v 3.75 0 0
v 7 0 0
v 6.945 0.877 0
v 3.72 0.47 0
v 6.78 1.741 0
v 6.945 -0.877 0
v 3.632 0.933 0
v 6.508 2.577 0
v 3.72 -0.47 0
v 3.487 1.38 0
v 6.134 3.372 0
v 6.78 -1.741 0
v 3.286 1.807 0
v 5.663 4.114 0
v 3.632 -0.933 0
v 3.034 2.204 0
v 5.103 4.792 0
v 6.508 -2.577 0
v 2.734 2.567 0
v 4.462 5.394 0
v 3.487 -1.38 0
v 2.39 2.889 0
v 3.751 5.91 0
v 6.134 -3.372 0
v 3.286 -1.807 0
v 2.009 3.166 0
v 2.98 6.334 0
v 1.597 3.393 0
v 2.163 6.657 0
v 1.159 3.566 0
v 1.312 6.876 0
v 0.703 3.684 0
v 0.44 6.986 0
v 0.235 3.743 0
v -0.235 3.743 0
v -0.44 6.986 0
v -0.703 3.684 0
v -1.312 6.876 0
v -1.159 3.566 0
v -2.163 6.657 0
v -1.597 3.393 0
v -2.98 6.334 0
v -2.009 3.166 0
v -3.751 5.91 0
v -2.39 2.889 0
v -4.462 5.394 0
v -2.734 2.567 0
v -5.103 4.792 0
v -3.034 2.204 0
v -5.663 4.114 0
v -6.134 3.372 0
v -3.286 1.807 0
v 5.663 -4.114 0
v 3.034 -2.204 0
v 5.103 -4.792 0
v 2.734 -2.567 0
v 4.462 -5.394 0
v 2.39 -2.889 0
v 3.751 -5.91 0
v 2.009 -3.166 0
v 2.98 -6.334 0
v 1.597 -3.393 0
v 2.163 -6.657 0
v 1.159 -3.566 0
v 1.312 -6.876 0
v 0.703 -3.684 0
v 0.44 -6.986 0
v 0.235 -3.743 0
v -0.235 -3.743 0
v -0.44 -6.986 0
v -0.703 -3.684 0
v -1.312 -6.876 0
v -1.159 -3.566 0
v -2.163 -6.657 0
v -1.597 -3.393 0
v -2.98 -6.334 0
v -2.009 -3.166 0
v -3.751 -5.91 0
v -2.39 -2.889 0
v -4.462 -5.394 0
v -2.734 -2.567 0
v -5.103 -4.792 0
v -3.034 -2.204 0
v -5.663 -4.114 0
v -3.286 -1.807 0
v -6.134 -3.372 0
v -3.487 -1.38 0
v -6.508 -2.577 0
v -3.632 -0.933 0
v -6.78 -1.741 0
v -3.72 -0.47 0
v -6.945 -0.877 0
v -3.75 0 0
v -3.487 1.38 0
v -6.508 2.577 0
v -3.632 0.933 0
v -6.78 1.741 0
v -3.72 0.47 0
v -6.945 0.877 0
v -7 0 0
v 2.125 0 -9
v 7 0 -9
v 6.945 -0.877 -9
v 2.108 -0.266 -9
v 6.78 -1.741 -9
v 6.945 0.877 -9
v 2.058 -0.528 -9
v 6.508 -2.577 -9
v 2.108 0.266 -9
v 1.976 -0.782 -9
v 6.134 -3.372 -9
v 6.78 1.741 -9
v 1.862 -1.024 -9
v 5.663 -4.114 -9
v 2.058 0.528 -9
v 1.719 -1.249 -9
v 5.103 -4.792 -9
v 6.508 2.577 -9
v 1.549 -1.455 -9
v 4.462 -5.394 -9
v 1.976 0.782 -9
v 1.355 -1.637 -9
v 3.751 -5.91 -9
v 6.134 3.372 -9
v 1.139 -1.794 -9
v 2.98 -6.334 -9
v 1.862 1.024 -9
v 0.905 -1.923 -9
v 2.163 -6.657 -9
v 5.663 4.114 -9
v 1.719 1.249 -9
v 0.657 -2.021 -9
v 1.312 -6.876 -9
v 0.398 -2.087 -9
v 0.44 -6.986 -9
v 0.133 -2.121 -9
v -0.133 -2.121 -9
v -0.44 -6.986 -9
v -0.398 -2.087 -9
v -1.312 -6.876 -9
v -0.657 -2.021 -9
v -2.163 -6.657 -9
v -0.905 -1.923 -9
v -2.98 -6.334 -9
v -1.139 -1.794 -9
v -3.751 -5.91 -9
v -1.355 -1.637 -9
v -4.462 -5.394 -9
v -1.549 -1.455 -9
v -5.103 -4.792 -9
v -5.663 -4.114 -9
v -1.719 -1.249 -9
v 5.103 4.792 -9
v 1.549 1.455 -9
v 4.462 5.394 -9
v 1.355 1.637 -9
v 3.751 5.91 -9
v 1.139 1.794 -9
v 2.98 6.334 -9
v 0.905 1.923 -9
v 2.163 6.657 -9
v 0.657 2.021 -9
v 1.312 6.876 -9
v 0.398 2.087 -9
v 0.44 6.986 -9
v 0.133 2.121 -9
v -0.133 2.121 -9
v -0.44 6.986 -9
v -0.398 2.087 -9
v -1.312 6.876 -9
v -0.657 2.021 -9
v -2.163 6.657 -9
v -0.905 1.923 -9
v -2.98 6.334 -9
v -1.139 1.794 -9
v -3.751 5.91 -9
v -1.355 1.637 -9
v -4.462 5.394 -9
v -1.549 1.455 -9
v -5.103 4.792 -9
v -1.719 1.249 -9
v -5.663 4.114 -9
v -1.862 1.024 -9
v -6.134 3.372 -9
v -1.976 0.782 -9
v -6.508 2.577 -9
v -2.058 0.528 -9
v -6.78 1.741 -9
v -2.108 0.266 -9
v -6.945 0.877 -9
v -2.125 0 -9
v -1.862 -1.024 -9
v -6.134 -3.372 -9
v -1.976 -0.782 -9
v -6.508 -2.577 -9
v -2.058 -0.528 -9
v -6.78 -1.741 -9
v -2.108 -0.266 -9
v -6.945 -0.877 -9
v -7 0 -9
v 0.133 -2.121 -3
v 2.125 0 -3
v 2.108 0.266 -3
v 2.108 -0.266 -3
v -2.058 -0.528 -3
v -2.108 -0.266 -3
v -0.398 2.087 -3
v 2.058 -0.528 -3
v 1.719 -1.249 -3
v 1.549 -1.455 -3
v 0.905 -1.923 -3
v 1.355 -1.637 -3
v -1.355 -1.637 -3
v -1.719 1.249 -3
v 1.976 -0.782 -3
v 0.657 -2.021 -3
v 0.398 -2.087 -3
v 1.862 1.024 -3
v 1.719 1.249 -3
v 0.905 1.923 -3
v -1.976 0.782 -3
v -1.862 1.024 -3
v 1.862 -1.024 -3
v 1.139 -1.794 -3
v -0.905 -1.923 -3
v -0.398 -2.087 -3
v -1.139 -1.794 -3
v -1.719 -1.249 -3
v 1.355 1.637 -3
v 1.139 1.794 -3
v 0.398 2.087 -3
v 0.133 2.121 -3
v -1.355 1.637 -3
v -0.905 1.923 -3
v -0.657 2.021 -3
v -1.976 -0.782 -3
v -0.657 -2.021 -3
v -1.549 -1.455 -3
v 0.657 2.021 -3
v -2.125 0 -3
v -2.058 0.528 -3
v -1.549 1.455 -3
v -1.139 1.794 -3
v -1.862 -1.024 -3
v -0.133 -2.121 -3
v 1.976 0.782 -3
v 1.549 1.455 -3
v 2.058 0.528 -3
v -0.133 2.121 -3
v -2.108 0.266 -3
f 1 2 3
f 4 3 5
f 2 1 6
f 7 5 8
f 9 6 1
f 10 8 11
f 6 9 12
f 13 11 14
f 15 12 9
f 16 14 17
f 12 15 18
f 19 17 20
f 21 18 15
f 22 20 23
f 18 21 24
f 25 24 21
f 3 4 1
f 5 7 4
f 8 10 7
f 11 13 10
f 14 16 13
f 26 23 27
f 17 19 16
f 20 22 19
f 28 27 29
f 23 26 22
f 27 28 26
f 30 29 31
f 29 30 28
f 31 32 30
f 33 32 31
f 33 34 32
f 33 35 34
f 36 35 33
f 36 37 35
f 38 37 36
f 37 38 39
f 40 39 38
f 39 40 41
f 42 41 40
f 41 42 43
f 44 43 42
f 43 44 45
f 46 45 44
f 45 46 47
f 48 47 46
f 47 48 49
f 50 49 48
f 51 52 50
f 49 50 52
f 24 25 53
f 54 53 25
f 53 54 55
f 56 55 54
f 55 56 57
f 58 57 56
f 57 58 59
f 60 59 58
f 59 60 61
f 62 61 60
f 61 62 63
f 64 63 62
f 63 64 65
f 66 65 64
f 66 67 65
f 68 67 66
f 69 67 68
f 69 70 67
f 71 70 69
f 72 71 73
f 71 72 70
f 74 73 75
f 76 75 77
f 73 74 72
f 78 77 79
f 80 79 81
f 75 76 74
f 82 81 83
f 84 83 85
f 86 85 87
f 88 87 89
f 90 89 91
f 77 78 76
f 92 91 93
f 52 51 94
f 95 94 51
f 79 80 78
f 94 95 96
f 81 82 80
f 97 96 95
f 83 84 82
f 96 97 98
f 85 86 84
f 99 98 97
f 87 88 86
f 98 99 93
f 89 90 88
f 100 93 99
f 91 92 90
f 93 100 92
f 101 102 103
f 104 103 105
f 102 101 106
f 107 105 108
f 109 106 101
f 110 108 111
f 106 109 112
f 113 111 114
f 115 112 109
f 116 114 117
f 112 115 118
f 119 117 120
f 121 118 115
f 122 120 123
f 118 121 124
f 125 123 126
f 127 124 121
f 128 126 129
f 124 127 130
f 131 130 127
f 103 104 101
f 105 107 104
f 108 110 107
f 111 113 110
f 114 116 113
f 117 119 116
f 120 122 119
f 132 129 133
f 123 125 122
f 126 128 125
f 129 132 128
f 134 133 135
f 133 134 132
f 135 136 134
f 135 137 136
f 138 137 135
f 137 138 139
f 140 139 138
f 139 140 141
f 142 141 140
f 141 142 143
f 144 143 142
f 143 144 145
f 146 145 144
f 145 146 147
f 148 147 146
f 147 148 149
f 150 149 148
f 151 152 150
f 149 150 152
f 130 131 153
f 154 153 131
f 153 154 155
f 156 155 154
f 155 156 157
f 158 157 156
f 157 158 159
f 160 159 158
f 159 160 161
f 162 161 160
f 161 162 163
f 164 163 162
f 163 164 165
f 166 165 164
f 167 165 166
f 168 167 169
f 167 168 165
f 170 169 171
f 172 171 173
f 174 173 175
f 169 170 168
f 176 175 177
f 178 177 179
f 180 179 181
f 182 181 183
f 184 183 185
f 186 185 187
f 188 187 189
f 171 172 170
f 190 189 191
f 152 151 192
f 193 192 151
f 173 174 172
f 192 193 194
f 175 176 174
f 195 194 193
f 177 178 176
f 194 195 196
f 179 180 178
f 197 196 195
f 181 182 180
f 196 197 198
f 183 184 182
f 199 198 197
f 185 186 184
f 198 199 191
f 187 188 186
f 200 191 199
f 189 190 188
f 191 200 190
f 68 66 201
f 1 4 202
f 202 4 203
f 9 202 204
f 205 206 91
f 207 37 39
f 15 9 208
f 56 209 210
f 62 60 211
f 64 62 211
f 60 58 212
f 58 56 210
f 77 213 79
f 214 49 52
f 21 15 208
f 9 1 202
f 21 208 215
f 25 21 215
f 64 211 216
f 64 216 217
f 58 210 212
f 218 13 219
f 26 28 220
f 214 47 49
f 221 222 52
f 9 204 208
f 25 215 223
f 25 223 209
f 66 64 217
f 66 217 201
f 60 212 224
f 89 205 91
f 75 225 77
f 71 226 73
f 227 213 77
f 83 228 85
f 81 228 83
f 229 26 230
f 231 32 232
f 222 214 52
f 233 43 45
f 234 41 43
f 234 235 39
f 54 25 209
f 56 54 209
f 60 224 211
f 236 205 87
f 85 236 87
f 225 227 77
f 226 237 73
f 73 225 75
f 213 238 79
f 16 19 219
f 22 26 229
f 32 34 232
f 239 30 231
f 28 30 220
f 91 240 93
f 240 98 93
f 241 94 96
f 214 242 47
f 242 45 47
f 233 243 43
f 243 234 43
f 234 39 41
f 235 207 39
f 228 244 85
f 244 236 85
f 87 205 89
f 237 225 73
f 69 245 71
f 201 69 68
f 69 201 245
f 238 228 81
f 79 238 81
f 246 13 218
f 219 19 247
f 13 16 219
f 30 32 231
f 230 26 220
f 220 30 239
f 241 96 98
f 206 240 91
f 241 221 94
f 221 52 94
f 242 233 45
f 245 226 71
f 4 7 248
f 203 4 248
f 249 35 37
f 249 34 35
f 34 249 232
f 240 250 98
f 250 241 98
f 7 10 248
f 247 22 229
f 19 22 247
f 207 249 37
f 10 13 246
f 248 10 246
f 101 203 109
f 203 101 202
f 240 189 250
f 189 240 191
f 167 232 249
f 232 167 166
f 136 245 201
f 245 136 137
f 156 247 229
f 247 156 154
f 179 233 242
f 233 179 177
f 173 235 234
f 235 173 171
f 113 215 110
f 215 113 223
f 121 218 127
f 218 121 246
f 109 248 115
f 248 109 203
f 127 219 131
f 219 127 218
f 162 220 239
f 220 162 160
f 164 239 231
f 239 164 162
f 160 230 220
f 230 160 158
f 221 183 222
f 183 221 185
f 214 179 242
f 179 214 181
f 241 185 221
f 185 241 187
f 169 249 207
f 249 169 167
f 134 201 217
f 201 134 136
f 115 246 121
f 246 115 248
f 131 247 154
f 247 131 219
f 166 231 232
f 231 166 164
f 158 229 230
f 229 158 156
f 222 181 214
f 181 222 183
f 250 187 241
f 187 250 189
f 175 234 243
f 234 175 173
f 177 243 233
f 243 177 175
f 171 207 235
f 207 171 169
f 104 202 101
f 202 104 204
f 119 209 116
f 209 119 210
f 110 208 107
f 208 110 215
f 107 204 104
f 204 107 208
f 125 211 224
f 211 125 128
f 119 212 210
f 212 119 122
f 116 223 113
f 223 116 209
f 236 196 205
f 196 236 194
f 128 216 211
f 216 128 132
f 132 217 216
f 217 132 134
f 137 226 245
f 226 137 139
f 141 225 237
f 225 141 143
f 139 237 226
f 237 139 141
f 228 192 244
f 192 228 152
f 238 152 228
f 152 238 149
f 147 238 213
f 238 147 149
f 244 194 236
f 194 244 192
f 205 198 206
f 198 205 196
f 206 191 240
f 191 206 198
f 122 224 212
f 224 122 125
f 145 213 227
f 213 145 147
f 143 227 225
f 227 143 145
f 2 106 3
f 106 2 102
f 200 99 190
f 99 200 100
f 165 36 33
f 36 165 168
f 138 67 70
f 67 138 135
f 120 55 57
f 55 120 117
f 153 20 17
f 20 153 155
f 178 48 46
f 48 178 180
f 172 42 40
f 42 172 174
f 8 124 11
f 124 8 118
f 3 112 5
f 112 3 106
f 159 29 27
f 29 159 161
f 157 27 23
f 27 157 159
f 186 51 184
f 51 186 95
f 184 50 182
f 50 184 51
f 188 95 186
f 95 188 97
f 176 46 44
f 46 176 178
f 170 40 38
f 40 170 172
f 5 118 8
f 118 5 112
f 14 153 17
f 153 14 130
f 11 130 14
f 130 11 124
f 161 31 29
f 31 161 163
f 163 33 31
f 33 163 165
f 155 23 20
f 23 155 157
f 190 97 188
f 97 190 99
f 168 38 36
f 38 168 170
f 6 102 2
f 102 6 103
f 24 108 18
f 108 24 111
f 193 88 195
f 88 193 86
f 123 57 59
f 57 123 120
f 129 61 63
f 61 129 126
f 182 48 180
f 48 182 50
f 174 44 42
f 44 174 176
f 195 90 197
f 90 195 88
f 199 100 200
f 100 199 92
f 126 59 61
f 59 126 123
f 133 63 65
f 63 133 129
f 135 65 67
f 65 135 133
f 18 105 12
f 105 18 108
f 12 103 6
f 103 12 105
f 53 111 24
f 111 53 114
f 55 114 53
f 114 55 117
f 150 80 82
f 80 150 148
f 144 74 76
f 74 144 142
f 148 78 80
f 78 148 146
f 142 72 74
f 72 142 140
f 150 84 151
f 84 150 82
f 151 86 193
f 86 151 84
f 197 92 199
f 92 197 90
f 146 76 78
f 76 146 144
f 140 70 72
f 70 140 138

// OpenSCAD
$fn = 50;


difference() {
	union() {
		translate(v = [0, 0, -9.0000000000]) {
			cylinder(h = 9, r = 7.0000000000);
		}
		cylinder(h = 0, r = 13.0000000000);
	}
	union() {
		translate(v = [0, 0, 0]) {
			rotate(a = [0, 0, 0]) {
				difference() {
					union() {
						#translate(v = [0, 0, -9.0000000000]) {
							cylinder(h = 9, r = 2.0000000000);
						}
						#translate(v = [0, 0, -3]) {
							cylinder(h = 3, r1 = 2.1250000000, r2 = 3.7500000000);
						}
						#translate(v = [0, 0, -9.0000000000]) {
							cylinder(h = 9, r = 2.1250000000);
						}
						#translate(v = [0, 0, -9.0000000000]) {
							cylinder(h = 9, r = 2.0000000000);
						}
					}
					union();
				}
			}
		}
	}
}
